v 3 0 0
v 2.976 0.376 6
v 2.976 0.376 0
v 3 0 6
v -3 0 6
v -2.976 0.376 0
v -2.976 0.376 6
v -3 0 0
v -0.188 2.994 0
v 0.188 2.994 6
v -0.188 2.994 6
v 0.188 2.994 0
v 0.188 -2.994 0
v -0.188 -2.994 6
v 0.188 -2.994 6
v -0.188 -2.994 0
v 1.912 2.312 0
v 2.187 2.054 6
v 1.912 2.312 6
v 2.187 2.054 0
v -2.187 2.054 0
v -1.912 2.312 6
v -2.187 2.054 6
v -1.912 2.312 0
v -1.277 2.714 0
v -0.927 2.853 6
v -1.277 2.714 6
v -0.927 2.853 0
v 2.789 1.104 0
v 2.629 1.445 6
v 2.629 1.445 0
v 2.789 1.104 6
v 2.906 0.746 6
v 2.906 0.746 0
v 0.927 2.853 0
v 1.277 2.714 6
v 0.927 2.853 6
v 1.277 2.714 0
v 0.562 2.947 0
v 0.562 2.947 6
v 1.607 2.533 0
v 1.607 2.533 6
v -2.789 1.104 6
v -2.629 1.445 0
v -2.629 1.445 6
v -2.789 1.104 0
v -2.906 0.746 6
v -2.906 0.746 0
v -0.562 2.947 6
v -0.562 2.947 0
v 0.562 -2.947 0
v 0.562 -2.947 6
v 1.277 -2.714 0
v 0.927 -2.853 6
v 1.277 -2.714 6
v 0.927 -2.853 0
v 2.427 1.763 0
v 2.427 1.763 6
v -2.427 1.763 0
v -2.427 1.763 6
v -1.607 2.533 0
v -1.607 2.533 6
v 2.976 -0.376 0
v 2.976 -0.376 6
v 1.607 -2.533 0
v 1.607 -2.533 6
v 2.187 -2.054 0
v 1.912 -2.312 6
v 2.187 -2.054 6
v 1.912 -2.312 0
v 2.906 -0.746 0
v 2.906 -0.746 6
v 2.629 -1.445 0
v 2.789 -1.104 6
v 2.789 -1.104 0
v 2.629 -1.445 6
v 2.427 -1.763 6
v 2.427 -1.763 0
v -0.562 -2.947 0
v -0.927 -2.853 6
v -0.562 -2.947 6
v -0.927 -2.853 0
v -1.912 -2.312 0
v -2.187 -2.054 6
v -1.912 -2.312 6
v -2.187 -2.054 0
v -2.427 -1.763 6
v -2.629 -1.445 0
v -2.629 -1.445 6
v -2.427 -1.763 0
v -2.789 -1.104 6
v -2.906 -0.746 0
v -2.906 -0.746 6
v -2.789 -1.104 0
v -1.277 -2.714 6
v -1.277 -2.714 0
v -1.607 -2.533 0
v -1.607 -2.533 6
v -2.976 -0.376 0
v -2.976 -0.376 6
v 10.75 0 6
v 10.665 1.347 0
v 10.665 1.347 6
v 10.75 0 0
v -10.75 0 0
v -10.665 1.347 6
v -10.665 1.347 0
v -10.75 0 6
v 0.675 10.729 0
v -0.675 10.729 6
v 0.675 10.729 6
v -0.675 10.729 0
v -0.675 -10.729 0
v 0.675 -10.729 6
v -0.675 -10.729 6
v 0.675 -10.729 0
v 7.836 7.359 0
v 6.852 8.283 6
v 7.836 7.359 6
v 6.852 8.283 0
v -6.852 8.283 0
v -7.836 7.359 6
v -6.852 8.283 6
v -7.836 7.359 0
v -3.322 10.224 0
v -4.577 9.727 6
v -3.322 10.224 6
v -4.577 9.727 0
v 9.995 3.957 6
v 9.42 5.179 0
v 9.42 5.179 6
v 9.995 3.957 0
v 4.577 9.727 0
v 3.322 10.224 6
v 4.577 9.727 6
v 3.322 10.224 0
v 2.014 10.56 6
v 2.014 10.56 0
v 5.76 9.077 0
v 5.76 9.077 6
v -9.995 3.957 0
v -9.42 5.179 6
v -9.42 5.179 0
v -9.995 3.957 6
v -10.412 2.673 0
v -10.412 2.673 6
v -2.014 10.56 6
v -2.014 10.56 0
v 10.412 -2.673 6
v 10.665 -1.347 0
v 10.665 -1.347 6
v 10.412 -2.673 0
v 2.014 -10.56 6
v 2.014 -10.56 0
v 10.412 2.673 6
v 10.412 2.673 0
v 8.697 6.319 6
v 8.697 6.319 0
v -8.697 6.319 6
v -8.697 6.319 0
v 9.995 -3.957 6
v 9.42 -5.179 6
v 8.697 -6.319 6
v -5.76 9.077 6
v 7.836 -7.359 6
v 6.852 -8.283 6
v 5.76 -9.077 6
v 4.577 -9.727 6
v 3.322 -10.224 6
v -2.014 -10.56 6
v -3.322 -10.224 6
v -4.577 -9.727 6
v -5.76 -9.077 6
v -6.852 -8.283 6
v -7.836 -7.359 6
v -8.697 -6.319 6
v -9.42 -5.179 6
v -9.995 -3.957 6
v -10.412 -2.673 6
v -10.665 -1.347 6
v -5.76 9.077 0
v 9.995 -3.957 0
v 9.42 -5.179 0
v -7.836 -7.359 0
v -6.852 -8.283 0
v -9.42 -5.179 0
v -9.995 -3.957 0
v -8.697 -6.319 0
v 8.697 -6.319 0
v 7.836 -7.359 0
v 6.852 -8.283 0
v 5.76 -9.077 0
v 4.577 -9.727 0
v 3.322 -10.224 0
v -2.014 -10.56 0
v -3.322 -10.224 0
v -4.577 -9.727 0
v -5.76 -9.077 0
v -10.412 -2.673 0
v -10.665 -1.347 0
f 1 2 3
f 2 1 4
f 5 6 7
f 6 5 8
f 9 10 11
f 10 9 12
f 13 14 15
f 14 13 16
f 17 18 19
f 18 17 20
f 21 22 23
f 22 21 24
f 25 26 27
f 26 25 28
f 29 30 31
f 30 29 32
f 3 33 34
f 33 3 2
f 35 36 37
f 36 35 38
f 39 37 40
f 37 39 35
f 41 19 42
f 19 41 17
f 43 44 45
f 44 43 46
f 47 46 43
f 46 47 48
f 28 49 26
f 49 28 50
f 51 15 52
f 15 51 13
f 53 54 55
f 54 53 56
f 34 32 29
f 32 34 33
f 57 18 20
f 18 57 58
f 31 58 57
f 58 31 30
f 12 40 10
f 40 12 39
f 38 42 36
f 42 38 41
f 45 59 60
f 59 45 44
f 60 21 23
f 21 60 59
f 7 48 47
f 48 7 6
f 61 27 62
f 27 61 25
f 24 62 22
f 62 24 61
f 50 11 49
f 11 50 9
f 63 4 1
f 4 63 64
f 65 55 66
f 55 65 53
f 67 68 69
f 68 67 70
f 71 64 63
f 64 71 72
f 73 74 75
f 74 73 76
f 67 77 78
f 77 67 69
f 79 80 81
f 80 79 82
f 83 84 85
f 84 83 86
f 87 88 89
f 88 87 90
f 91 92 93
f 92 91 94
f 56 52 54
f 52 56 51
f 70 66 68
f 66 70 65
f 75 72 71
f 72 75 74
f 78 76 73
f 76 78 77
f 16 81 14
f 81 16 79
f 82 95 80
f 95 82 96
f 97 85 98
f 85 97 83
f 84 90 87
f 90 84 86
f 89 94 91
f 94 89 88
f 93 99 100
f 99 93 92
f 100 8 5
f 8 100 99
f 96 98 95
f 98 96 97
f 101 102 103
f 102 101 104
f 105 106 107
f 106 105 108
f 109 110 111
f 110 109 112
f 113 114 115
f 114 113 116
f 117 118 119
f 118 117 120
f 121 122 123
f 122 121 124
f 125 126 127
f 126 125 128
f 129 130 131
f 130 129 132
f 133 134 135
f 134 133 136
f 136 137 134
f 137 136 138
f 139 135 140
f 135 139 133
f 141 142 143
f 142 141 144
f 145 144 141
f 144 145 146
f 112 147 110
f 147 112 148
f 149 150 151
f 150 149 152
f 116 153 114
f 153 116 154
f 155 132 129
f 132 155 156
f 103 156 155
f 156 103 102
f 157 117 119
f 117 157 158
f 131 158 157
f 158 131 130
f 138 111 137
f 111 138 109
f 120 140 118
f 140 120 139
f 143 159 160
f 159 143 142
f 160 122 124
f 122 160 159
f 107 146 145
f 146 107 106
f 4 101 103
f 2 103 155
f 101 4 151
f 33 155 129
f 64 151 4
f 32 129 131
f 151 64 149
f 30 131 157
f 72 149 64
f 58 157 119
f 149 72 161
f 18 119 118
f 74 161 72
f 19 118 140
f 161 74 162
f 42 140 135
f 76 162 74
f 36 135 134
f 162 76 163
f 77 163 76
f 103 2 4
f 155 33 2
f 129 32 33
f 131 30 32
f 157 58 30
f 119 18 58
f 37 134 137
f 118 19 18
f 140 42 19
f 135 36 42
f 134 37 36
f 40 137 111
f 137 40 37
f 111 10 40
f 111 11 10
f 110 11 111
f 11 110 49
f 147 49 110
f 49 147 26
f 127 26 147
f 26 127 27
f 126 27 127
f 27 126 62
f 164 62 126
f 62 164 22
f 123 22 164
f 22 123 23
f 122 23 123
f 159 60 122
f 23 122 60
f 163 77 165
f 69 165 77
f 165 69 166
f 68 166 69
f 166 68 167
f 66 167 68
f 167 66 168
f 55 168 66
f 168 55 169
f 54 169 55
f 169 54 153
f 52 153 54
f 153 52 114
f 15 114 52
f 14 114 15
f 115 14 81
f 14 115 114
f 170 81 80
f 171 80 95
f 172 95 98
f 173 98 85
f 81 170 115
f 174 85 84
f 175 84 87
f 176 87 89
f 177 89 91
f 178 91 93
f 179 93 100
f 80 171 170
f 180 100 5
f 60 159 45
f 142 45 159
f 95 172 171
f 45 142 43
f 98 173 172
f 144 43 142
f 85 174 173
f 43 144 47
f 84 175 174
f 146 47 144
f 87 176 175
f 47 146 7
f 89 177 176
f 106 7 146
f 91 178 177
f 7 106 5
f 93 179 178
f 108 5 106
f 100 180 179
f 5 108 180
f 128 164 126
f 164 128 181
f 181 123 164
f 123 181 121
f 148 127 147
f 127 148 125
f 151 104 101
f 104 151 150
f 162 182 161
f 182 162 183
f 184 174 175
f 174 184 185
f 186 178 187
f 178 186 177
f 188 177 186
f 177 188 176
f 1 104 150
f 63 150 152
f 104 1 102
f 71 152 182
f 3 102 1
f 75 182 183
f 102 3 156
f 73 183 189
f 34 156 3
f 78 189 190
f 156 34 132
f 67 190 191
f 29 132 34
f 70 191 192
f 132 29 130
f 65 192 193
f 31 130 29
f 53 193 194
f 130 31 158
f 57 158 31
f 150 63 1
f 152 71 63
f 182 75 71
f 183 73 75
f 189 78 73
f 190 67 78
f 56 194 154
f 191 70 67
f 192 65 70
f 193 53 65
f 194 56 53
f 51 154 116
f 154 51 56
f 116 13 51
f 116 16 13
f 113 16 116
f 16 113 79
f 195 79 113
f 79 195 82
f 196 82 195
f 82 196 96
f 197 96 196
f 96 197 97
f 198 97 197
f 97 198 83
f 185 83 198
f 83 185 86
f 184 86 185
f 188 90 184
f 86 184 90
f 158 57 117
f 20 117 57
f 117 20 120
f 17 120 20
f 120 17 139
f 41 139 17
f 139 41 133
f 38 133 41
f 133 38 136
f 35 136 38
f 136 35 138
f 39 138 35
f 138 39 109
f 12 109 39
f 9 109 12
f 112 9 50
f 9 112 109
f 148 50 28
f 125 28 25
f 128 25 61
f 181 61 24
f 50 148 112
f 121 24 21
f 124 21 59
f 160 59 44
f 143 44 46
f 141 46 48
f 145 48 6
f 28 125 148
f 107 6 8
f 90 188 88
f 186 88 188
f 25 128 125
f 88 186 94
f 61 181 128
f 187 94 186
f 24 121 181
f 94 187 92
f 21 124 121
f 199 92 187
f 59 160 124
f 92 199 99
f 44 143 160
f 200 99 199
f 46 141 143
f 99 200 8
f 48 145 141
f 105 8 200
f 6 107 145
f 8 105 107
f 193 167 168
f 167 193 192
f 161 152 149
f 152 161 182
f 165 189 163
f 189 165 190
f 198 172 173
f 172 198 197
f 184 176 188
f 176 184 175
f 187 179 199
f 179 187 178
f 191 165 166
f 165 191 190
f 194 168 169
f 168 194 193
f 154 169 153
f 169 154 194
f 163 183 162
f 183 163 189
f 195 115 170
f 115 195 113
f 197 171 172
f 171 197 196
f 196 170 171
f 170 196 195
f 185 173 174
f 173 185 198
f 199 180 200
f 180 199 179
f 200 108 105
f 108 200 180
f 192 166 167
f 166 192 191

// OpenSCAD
$fn = 50;


difference() {
	union() {
		*color(alpha = 1.0000000000, c = "gray") {
			translate(v = [0, 7, 0]) {
				linear_extrude(height = 1) {
					text(font = "Arial:style=Bold", halign = "center", size = 4.5000000000, text = "COMMENT circle main", valign = "center");
				}
			}
		}
		cylinder(h = 6, r = 10.7500000000);
	}
	union() {
		*color(alpha = 1.0000000000, c = "gray") {
			translate(v = [0, 7, 0]) {
				linear_extrude(height = 1) {
					text(font = "Arial:style=Bold", halign = "center", size = 4.5000000000, text = "COMMENT holes main", valign = "center");
				}
			}
		}
		translate(v = [0.0000000000, 0.0000000000, -50.0000000000]) {
			cylinder(h = 100, r = 3.0000000000);
		}
		translate(v = [0.0000000000, 0.0000000000, -50.0000000000]) {
			cylinder(h = 100, r = 3.0000000000);
		}
		translate(v = [0.0000000000, 0.0000000000, -50.0000000000]) {
			cylinder(h = 100, r = 3.0000000000);
		}
		translate(v = [0.0000000000, 0.0000000000, -50.0000000000]) {
			cylinder(h = 100, r = 1.5000000000);
		}
		translate(v = [0.0000000000, 0.0000000000, -50.0000000000]) {
			cylinder(h = 100, r = 1.5000000000);
		}
		translate(v = [0.0000000000, 0.0000000000, -50.0000000000]) {
			cylinder(h = 100, r = 1.5000000000);
		}
	}
}
